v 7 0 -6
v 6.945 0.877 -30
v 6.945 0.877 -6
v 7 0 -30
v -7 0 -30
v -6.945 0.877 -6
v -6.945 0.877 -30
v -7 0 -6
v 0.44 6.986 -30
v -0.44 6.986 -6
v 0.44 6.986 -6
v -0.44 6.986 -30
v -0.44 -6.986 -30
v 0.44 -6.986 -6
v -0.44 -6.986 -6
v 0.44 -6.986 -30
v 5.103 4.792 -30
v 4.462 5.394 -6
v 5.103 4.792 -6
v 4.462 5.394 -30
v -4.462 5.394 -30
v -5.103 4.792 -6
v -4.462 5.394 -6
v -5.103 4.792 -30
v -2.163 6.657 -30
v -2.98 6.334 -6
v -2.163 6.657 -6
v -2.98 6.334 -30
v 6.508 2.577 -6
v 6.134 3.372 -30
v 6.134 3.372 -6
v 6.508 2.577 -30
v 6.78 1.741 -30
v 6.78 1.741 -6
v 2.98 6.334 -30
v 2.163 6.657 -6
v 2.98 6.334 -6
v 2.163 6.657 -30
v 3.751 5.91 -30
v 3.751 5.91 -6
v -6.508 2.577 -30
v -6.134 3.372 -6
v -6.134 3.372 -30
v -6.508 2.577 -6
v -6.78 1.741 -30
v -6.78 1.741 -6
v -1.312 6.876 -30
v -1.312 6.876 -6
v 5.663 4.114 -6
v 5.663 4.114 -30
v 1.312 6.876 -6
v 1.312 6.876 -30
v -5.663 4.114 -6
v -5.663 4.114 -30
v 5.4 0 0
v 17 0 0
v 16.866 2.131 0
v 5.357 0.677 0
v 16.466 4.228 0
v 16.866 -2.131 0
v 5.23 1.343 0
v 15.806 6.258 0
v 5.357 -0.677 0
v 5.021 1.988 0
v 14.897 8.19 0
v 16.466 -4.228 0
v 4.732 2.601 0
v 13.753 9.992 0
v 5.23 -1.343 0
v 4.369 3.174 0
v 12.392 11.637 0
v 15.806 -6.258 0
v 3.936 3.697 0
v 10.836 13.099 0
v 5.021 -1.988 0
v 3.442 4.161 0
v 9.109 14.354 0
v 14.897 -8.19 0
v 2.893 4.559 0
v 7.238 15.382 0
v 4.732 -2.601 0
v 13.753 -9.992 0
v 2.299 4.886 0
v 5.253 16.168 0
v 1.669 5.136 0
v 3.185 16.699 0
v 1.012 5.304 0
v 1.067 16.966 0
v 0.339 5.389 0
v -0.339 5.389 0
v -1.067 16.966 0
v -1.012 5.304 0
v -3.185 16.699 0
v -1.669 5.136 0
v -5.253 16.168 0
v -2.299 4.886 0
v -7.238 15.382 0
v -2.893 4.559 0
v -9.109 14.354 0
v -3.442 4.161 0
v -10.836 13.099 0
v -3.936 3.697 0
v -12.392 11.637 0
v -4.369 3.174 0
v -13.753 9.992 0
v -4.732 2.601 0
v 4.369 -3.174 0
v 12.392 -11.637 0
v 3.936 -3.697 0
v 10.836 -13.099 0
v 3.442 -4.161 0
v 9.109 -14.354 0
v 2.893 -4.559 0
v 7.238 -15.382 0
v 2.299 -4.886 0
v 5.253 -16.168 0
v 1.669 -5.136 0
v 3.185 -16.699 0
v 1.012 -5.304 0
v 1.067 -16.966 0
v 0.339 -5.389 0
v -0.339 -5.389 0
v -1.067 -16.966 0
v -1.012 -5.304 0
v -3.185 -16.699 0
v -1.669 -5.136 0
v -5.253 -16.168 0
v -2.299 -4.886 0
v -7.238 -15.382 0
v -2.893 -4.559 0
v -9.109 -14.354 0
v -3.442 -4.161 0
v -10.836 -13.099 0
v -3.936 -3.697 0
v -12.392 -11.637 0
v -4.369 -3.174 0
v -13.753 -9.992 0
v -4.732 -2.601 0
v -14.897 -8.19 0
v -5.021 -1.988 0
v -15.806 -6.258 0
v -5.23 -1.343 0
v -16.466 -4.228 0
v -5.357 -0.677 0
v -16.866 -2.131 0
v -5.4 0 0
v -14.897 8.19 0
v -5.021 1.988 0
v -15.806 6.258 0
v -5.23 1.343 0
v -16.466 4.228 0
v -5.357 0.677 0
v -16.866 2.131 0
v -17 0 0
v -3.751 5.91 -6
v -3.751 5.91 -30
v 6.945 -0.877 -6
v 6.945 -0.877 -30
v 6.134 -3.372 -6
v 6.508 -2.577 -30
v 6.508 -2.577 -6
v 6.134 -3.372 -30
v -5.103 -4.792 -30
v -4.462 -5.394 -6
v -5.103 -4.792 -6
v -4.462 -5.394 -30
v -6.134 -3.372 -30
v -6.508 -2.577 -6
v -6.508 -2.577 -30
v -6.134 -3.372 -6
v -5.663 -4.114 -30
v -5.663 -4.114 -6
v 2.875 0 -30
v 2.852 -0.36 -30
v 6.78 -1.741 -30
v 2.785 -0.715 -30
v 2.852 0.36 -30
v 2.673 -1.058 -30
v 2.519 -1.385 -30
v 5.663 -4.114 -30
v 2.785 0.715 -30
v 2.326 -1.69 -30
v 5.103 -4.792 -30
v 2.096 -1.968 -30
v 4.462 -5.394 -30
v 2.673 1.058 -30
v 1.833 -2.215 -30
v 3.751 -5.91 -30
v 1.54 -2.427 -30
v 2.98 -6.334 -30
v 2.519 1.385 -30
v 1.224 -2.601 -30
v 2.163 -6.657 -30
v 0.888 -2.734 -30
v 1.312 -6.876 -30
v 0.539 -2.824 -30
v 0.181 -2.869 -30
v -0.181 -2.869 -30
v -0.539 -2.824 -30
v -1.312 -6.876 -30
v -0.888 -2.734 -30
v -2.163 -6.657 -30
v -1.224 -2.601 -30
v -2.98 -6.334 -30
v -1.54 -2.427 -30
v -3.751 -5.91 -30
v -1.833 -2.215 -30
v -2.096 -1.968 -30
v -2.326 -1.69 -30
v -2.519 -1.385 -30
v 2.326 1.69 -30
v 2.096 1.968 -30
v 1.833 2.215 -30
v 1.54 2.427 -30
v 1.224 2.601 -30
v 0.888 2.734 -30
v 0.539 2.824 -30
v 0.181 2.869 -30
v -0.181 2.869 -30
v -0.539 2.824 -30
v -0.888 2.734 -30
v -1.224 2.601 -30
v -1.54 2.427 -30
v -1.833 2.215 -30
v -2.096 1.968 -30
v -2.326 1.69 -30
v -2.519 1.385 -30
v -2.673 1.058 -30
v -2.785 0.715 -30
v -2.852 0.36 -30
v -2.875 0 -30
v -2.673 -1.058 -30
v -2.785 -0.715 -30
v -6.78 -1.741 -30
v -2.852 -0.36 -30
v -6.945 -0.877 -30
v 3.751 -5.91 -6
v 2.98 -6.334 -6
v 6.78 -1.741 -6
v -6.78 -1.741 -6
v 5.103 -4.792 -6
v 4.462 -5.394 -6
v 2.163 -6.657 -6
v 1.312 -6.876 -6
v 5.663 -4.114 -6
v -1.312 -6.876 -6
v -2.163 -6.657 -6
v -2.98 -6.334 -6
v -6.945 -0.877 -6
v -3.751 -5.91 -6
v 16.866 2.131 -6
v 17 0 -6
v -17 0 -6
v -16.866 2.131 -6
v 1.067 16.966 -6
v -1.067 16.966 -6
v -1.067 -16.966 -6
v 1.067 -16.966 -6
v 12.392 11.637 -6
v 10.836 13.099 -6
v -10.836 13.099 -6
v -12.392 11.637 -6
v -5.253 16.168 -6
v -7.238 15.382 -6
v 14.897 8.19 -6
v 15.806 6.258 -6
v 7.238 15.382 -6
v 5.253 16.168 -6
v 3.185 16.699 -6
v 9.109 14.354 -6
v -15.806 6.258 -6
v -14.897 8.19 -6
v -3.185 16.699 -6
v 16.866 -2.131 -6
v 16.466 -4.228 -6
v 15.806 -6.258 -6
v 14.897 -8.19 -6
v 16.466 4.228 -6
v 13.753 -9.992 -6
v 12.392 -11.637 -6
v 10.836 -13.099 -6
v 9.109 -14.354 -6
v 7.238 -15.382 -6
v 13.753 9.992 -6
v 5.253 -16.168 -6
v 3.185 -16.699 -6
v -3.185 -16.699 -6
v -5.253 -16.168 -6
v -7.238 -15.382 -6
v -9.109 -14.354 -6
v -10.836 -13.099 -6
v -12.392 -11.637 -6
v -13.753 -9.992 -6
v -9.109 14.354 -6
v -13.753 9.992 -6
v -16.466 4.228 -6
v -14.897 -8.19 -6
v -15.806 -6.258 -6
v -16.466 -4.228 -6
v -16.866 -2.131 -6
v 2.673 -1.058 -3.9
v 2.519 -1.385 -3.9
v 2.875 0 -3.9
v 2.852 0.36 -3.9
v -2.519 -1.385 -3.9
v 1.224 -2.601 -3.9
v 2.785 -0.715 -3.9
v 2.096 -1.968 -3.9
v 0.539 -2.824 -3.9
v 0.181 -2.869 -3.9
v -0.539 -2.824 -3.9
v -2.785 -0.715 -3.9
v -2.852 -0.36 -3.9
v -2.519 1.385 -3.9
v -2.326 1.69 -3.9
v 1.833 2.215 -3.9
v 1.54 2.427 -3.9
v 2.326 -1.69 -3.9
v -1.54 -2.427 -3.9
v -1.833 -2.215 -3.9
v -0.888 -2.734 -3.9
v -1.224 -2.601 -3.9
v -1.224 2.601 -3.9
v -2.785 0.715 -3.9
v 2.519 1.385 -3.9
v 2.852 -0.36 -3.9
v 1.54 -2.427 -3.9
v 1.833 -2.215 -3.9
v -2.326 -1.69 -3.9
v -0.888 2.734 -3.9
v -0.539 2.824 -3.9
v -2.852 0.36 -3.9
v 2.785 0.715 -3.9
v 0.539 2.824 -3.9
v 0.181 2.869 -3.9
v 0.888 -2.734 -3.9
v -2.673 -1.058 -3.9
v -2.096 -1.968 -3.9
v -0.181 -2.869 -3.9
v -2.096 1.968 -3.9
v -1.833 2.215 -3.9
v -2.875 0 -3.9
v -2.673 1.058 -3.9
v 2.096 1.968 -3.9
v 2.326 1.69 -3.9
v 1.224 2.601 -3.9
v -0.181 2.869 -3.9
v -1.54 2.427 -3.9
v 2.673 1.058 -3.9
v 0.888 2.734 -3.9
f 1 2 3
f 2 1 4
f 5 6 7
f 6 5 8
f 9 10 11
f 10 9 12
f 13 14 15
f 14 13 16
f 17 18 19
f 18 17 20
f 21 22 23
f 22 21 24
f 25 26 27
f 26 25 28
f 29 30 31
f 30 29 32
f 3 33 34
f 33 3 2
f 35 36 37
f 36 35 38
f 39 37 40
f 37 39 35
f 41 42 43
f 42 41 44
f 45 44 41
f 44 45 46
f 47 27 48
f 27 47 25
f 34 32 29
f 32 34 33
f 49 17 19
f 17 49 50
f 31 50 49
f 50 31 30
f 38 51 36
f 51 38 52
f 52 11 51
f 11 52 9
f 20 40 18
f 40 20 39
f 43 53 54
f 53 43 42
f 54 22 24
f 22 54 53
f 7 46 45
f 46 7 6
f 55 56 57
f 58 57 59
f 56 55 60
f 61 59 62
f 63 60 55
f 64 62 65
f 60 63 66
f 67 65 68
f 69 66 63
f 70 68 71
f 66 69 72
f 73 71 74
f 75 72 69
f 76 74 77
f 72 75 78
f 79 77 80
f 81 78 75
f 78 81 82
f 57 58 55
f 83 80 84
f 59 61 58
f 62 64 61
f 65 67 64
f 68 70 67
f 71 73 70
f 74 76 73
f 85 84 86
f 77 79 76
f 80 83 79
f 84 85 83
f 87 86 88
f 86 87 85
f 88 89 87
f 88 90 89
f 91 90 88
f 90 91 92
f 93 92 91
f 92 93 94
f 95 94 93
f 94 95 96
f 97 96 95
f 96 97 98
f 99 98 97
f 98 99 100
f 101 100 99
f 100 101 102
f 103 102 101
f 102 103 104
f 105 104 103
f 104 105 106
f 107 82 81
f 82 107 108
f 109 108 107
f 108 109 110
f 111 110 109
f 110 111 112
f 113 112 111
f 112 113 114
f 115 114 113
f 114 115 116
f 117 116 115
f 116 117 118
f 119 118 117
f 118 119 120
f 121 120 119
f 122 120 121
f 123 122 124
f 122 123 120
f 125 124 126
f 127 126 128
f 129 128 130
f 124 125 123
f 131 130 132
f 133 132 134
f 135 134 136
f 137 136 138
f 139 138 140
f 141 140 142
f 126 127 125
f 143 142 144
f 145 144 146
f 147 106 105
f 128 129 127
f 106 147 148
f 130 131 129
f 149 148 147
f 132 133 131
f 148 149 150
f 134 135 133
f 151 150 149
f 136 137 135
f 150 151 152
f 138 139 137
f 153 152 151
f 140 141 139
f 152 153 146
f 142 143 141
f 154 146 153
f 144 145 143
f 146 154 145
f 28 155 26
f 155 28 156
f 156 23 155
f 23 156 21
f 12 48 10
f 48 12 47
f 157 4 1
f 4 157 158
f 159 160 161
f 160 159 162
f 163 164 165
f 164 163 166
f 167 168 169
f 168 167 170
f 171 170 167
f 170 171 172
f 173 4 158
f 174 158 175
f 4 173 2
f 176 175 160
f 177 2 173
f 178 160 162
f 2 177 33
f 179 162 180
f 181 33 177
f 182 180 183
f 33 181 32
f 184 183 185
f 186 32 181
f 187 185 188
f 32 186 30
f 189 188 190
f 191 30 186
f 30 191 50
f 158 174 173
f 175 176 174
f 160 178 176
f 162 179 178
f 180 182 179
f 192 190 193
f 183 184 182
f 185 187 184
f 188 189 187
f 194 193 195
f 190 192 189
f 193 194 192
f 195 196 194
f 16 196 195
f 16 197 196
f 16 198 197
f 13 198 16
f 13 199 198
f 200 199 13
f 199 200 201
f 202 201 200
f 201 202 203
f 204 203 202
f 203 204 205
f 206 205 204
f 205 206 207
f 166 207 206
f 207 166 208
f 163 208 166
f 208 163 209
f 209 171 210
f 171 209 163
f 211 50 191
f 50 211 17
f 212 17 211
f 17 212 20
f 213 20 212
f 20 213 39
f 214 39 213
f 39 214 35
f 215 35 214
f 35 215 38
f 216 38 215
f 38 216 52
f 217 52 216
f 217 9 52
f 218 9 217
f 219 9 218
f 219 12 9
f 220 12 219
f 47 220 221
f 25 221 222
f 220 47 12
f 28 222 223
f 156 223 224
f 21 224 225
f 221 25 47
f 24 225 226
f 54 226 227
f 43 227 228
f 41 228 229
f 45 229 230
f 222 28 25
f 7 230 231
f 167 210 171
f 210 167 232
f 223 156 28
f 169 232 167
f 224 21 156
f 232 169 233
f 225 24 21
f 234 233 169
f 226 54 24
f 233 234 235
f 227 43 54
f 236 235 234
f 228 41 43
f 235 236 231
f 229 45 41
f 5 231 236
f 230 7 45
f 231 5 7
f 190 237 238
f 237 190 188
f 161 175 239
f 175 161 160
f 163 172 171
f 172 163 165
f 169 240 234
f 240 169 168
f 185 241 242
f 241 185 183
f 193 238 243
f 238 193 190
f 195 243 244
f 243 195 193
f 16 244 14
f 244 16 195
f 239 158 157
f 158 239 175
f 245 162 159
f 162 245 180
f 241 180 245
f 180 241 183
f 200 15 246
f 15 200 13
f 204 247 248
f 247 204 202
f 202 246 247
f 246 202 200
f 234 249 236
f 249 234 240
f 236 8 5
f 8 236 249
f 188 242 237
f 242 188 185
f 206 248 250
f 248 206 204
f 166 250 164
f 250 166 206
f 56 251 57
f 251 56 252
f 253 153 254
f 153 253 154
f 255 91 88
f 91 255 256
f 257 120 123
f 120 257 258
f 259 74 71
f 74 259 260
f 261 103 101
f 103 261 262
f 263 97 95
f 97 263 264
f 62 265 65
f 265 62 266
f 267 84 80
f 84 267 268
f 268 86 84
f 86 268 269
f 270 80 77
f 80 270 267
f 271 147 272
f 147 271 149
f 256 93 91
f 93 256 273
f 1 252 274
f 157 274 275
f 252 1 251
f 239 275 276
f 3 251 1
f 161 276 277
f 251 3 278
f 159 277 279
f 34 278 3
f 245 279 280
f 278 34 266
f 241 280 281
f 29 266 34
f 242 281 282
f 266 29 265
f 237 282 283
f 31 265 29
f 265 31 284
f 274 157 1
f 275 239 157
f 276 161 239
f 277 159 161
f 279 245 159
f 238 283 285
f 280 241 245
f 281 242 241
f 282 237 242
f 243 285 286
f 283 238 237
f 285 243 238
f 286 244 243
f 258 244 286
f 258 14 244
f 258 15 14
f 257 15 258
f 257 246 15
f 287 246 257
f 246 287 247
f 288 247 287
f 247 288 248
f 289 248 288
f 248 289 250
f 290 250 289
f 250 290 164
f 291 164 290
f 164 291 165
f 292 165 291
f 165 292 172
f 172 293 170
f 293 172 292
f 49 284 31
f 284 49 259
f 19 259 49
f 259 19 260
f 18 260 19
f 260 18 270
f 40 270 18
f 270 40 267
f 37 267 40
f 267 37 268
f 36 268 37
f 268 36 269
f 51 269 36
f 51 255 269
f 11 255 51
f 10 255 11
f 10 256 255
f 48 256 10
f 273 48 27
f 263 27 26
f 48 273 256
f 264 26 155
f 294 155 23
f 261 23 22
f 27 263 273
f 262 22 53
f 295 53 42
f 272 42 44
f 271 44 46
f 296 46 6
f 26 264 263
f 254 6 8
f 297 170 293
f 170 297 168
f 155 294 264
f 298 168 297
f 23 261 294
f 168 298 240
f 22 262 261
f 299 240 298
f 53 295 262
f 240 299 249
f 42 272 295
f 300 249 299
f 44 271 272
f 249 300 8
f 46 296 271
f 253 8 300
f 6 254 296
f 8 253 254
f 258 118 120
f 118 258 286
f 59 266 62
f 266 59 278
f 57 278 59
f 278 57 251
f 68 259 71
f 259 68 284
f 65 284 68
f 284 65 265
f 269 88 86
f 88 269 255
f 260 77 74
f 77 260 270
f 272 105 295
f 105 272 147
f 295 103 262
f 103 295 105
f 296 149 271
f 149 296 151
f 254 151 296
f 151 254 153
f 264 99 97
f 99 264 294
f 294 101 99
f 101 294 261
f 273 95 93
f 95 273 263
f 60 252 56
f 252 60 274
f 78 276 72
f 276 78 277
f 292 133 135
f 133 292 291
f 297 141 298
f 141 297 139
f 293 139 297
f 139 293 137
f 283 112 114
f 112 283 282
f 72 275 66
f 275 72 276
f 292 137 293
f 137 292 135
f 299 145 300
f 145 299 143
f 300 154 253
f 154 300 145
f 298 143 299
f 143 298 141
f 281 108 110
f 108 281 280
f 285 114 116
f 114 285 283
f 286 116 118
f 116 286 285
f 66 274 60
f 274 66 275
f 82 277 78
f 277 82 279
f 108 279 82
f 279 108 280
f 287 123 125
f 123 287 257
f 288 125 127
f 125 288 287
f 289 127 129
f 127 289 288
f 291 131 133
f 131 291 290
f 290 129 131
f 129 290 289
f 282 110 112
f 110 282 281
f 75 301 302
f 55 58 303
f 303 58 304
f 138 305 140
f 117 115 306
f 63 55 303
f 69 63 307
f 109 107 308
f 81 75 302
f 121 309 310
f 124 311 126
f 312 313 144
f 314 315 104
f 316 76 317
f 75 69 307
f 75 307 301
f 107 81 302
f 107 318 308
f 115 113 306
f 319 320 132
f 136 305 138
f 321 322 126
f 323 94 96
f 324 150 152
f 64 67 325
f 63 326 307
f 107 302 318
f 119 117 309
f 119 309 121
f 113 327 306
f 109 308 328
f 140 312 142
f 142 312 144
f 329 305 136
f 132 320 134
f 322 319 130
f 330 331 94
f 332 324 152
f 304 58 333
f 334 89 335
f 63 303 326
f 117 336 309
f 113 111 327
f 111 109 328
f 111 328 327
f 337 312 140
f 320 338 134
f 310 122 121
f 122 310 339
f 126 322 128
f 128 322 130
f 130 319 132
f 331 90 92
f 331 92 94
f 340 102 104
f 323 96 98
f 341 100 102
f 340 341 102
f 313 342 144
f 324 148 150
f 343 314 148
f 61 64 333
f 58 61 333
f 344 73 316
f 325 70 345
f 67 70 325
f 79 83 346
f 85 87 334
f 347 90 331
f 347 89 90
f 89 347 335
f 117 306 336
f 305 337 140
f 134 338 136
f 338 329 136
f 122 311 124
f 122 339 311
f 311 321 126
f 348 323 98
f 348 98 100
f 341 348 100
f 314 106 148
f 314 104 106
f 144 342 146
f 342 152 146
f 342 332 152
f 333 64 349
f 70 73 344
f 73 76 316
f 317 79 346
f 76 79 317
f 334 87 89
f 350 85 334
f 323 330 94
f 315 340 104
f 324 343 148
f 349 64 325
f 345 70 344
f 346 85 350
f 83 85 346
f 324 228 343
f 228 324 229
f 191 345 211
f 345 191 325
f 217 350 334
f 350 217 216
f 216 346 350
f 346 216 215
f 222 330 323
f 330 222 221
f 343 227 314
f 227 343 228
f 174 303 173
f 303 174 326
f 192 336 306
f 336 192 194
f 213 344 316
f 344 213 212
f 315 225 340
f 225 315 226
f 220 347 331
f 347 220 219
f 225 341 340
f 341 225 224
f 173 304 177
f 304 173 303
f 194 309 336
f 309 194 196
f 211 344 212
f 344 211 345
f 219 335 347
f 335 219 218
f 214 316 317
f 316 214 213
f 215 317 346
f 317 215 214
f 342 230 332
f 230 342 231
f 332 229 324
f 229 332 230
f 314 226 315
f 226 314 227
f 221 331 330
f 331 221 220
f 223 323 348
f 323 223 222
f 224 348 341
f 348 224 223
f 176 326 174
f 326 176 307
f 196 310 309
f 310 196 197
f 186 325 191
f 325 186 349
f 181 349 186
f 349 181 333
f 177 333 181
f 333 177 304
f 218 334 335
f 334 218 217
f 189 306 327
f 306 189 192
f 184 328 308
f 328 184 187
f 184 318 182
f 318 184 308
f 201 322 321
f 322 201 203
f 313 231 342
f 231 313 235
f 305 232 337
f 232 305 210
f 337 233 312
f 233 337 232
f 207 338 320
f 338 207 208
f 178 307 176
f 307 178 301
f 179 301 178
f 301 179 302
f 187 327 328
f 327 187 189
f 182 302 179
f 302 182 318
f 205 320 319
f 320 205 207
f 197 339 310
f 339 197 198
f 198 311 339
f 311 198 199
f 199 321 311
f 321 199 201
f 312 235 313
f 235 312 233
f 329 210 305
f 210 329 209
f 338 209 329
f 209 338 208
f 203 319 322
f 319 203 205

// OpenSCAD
$fn = 50;


difference() {
	union() {
		translate(v = [0, 0, -30.0000000000]) {
			cylinder(h = 30, r = 7.0000000000);
		}
		translate(v = [0, 0, -6.0000000000]) {
			cylinder(h = 6, r = 17.0000000000);
		}
	}
	union() {
		translate(v = [0, 0, 0]) {
			rotate(a = [0, 0, 0]) {
				difference() {
					union() {
						#translate(v = [0, 0, -30.0000000000]) {
							cylinder(h = 30, r = 2.6000000000);
						}
						#translate(v = [0, 0, -3.9000000000]) {
							cylinder(h = 3.9000000000, r1 = 2.8750000000, r2 = 5.4000000000);
						}
						#translate(v = [0, 0, -30.0000000000]) {
							cylinder(h = 30, r = 2.8750000000);
						}
						#translate(v = [0, 0, -30.0000000000]) {
							cylinder(h = 30, r = 2.6000000000);
						}
					}
					union();
				}
			}
		}
	}
}
